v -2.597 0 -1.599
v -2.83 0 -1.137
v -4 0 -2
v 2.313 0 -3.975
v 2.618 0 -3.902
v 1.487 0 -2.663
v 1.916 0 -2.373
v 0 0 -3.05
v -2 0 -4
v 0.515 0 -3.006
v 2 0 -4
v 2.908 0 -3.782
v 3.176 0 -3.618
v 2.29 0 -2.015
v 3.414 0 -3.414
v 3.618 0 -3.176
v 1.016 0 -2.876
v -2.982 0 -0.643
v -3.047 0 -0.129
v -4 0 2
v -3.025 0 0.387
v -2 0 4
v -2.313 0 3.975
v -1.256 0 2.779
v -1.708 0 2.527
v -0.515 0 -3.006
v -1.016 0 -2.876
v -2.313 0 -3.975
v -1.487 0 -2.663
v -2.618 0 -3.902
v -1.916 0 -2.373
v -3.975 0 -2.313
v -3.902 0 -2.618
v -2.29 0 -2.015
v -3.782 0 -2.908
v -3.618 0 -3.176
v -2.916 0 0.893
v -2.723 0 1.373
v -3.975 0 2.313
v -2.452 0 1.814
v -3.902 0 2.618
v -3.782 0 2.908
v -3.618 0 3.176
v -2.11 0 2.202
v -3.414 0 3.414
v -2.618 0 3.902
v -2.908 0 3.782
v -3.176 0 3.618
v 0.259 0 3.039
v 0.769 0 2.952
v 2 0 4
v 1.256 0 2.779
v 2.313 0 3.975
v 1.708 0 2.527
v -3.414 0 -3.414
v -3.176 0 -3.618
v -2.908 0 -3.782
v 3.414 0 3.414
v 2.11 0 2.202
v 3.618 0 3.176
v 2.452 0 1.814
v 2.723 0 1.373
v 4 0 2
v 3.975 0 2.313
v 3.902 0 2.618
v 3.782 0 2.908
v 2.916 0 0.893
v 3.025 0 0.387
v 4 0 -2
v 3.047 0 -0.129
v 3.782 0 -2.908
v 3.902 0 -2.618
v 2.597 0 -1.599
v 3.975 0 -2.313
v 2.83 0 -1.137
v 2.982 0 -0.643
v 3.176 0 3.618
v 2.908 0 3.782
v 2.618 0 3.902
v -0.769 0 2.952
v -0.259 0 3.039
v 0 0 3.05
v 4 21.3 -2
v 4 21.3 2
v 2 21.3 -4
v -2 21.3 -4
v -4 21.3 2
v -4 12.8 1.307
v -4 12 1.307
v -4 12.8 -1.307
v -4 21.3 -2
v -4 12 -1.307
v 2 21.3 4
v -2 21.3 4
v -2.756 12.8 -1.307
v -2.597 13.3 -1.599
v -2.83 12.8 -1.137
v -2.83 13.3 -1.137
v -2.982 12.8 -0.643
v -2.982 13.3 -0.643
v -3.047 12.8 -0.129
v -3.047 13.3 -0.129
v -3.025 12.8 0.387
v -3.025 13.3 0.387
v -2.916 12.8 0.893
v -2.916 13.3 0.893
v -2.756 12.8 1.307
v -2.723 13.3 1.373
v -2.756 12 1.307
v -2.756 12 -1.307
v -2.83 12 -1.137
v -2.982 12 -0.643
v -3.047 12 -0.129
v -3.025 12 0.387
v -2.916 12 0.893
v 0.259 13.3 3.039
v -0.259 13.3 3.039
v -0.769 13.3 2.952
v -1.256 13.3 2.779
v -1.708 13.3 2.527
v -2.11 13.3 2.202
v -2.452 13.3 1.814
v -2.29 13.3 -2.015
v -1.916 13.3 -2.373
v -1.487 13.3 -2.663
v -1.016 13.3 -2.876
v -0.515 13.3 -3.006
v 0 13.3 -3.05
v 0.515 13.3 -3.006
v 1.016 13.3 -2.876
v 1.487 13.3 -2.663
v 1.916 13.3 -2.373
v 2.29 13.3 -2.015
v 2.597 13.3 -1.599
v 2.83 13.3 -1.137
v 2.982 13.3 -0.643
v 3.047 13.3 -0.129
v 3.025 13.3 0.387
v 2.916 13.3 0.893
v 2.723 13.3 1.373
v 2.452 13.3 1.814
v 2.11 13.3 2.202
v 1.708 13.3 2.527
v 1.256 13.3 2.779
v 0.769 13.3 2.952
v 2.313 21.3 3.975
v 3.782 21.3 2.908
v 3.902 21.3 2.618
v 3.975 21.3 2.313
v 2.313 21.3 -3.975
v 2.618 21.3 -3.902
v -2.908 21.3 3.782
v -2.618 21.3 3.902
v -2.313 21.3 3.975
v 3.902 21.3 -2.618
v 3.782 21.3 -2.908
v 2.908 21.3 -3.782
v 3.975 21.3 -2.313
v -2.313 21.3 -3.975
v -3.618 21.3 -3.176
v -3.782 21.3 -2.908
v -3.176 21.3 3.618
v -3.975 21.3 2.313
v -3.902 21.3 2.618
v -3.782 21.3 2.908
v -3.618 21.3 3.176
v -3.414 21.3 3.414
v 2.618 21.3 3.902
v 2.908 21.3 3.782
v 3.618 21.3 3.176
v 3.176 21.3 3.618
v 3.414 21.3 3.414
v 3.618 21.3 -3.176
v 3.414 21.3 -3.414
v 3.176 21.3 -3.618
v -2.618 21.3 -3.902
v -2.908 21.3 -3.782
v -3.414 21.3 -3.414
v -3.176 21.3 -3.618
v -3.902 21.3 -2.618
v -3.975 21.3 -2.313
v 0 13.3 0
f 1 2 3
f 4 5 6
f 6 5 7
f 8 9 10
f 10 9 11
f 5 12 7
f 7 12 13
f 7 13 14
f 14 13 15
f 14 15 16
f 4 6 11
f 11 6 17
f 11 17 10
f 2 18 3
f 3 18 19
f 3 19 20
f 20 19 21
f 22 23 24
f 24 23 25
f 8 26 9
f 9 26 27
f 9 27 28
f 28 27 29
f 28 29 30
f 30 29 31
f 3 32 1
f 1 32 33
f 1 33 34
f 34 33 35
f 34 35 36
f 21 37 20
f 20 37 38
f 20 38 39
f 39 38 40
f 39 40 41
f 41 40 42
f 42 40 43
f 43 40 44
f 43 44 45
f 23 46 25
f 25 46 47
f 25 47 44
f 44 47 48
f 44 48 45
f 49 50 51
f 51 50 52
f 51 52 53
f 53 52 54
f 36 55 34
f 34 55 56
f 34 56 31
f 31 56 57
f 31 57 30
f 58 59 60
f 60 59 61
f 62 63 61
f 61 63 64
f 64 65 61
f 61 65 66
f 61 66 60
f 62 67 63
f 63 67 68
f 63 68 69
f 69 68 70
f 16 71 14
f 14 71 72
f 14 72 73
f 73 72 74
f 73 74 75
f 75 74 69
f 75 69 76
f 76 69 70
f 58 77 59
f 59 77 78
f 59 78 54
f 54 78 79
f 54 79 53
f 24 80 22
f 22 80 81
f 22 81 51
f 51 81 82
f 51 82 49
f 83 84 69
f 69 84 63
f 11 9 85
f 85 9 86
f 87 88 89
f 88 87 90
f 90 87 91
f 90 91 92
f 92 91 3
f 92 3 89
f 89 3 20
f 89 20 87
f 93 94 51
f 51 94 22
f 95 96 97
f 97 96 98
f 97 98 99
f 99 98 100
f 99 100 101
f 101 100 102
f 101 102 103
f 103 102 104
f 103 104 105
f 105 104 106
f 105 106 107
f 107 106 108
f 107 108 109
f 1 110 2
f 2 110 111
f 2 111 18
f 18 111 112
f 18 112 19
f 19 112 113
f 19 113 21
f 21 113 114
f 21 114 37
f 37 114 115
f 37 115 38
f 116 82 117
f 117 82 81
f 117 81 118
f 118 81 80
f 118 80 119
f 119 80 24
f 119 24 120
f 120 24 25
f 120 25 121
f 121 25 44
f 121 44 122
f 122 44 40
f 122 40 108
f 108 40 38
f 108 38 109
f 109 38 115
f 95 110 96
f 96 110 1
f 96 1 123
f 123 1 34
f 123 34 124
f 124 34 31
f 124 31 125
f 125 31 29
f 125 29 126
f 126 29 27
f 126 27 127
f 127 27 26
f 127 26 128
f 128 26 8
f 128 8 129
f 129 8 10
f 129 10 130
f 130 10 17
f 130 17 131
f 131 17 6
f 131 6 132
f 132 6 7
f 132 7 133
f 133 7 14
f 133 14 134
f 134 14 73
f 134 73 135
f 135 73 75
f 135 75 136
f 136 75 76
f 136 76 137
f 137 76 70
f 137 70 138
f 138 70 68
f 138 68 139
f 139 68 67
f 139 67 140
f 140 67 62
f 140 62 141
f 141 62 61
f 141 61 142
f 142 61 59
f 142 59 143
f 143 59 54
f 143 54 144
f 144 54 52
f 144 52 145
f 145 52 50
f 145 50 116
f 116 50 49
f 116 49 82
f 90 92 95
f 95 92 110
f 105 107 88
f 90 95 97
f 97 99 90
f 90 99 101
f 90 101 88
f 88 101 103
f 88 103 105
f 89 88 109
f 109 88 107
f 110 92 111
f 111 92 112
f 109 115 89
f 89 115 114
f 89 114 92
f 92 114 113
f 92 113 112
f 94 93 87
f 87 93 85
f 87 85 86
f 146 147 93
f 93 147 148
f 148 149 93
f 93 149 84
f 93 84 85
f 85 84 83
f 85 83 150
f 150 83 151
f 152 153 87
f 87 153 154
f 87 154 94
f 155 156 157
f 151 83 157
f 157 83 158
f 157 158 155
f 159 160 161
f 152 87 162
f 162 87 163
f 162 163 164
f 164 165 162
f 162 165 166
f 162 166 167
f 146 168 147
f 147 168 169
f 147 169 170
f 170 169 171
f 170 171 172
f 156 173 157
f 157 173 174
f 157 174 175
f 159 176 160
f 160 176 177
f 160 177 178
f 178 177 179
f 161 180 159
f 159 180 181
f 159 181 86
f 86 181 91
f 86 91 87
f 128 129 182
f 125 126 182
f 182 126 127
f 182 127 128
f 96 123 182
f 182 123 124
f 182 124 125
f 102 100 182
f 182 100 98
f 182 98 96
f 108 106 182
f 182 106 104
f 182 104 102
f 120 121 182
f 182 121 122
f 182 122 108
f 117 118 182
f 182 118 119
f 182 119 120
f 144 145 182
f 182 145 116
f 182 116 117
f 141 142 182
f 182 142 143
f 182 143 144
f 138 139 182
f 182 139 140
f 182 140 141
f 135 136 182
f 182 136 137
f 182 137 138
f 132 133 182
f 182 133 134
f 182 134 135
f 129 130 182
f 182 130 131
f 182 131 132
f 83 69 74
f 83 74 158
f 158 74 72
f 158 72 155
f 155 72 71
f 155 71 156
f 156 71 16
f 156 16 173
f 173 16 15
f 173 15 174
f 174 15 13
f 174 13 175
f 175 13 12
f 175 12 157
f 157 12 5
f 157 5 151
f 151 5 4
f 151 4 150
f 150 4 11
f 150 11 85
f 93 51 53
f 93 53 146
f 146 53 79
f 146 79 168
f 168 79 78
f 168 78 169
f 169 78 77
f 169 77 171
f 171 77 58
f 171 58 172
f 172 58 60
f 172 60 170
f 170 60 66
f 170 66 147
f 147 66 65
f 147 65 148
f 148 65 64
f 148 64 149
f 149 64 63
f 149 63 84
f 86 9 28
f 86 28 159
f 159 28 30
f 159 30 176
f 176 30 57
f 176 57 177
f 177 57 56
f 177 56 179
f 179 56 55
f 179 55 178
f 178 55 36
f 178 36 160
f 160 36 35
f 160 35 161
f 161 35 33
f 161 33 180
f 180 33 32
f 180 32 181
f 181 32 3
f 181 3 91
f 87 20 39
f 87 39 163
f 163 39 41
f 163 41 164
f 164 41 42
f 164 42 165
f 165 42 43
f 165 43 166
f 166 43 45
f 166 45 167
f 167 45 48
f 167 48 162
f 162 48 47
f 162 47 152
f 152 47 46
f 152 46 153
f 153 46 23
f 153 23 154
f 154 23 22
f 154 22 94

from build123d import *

# Parameters (mm, degrees)
SKETCH_1_W          = 8
SKETCH_1_H          = 8
SKETCH_1_R          = 3.05
EXTRUDE_1_DEPTH     = 8.8
SKETCH_2_W          = 8
SKETCH_2_H          = 4.5
EXTRUDE_2_DEPTH     = 8.8
SKETCH_3_R          = 3.05
CUT_EXTRUDE_1_DEPTH = 11.792590051
SKETCH_4_W          = 8
SKETCH_4_H          = 0.8
CUT_EXTRUDE_2_DEPTH = 11.792590051
SKETCH_5_W          = 2.614851978
SKETCH_5_H          = 0.8
CUT_EXTRUDE_3_DEPTH = 6
SKETCH_8_W          = 8
SKETCH_8_H          = 8
EXTRUDE_3_DEPTH     = 8
FILLET_2_R          = 2


with BuildPart() as part:
    # 草圖1 → 填料-伸長1 (new body)
    with BuildSketch(Plane(origin=(0, 0, 0), x_dir=(1, 0, 0), z_dir=(0, 1, 0))):
        Rectangle(SKETCH_1_W, SKETCH_1_H)
        with Locations(Location((0, 0, 0), (0, 0, 270))):
            Circle(SKETCH_1_R, mode=Mode.SUBTRACT)
    extrude(amount=EXTRUDE_1_DEPTH)

    # 草圖2 → 填料-伸長2 (add)
    with BuildSketch(Plane(origin=(0, 0, -4), x_dir=(-1, 0, 0), z_dir=(0, 0, -1))):
        with Locations((0, 11.05)):
            Rectangle(SKETCH_2_W, SKETCH_2_H)
    extrude(amount=-EXTRUDE_2_DEPTH)

    # 草圖3 → 除料-伸長1 (cut, through all)
    with BuildSketch(Plane.XZ.offset(-8.8)):
        with Locations(Location((0, 0, 0), (0, 0, 270))):
            Circle(SKETCH_3_R)
    extrude(amount=-CUT_EXTRUDE_1_DEPTH, mode=Mode.SUBTRACT)

    # 草圖4 → 除料-伸長2 (cut, through all)
    with BuildSketch(Plane.XZ.offset(-8.8)):
        with Locations((0, 4.4)):
            Rectangle(SKETCH_4_W, SKETCH_4_H)
    extrude(amount=-CUT_EXTRUDE_2_DEPTH, mode=Mode.SUBTRACT)

    # 草圖5 → 除料-伸長3 (cut)
    with BuildSketch(Plane.ZY.offset(4)):
        with Locations((0, 12.4)):
            Rectangle(SKETCH_5_W, SKETCH_5_H)
    extrude(amount=-CUT_EXTRUDE_3_DEPTH, mode=Mode.SUBTRACT)

    # 草圖8 → 填料-伸長3 (add)
    with BuildSketch(Plane(origin=(0, 13.3, 0), x_dir=(1, 0, 0), z_dir=(0, 1, 0))):
        Rectangle(SKETCH_8_W, SKETCH_8_H)
    extrude(amount=EXTRUDE_3_DEPTH)

    # 圓角2
    fillet_2_edges = [part.edges().sort_by_distance(p)[0] for p in [
        (4, 10.65, 4),
        (-4, 10.65, 4),
        (-4, 10.65, -4),
        (4, 10.65, -4),
    ]]
    fillet(fillet_2_edges, radius=FILLET_2_R)


solid = part.part
